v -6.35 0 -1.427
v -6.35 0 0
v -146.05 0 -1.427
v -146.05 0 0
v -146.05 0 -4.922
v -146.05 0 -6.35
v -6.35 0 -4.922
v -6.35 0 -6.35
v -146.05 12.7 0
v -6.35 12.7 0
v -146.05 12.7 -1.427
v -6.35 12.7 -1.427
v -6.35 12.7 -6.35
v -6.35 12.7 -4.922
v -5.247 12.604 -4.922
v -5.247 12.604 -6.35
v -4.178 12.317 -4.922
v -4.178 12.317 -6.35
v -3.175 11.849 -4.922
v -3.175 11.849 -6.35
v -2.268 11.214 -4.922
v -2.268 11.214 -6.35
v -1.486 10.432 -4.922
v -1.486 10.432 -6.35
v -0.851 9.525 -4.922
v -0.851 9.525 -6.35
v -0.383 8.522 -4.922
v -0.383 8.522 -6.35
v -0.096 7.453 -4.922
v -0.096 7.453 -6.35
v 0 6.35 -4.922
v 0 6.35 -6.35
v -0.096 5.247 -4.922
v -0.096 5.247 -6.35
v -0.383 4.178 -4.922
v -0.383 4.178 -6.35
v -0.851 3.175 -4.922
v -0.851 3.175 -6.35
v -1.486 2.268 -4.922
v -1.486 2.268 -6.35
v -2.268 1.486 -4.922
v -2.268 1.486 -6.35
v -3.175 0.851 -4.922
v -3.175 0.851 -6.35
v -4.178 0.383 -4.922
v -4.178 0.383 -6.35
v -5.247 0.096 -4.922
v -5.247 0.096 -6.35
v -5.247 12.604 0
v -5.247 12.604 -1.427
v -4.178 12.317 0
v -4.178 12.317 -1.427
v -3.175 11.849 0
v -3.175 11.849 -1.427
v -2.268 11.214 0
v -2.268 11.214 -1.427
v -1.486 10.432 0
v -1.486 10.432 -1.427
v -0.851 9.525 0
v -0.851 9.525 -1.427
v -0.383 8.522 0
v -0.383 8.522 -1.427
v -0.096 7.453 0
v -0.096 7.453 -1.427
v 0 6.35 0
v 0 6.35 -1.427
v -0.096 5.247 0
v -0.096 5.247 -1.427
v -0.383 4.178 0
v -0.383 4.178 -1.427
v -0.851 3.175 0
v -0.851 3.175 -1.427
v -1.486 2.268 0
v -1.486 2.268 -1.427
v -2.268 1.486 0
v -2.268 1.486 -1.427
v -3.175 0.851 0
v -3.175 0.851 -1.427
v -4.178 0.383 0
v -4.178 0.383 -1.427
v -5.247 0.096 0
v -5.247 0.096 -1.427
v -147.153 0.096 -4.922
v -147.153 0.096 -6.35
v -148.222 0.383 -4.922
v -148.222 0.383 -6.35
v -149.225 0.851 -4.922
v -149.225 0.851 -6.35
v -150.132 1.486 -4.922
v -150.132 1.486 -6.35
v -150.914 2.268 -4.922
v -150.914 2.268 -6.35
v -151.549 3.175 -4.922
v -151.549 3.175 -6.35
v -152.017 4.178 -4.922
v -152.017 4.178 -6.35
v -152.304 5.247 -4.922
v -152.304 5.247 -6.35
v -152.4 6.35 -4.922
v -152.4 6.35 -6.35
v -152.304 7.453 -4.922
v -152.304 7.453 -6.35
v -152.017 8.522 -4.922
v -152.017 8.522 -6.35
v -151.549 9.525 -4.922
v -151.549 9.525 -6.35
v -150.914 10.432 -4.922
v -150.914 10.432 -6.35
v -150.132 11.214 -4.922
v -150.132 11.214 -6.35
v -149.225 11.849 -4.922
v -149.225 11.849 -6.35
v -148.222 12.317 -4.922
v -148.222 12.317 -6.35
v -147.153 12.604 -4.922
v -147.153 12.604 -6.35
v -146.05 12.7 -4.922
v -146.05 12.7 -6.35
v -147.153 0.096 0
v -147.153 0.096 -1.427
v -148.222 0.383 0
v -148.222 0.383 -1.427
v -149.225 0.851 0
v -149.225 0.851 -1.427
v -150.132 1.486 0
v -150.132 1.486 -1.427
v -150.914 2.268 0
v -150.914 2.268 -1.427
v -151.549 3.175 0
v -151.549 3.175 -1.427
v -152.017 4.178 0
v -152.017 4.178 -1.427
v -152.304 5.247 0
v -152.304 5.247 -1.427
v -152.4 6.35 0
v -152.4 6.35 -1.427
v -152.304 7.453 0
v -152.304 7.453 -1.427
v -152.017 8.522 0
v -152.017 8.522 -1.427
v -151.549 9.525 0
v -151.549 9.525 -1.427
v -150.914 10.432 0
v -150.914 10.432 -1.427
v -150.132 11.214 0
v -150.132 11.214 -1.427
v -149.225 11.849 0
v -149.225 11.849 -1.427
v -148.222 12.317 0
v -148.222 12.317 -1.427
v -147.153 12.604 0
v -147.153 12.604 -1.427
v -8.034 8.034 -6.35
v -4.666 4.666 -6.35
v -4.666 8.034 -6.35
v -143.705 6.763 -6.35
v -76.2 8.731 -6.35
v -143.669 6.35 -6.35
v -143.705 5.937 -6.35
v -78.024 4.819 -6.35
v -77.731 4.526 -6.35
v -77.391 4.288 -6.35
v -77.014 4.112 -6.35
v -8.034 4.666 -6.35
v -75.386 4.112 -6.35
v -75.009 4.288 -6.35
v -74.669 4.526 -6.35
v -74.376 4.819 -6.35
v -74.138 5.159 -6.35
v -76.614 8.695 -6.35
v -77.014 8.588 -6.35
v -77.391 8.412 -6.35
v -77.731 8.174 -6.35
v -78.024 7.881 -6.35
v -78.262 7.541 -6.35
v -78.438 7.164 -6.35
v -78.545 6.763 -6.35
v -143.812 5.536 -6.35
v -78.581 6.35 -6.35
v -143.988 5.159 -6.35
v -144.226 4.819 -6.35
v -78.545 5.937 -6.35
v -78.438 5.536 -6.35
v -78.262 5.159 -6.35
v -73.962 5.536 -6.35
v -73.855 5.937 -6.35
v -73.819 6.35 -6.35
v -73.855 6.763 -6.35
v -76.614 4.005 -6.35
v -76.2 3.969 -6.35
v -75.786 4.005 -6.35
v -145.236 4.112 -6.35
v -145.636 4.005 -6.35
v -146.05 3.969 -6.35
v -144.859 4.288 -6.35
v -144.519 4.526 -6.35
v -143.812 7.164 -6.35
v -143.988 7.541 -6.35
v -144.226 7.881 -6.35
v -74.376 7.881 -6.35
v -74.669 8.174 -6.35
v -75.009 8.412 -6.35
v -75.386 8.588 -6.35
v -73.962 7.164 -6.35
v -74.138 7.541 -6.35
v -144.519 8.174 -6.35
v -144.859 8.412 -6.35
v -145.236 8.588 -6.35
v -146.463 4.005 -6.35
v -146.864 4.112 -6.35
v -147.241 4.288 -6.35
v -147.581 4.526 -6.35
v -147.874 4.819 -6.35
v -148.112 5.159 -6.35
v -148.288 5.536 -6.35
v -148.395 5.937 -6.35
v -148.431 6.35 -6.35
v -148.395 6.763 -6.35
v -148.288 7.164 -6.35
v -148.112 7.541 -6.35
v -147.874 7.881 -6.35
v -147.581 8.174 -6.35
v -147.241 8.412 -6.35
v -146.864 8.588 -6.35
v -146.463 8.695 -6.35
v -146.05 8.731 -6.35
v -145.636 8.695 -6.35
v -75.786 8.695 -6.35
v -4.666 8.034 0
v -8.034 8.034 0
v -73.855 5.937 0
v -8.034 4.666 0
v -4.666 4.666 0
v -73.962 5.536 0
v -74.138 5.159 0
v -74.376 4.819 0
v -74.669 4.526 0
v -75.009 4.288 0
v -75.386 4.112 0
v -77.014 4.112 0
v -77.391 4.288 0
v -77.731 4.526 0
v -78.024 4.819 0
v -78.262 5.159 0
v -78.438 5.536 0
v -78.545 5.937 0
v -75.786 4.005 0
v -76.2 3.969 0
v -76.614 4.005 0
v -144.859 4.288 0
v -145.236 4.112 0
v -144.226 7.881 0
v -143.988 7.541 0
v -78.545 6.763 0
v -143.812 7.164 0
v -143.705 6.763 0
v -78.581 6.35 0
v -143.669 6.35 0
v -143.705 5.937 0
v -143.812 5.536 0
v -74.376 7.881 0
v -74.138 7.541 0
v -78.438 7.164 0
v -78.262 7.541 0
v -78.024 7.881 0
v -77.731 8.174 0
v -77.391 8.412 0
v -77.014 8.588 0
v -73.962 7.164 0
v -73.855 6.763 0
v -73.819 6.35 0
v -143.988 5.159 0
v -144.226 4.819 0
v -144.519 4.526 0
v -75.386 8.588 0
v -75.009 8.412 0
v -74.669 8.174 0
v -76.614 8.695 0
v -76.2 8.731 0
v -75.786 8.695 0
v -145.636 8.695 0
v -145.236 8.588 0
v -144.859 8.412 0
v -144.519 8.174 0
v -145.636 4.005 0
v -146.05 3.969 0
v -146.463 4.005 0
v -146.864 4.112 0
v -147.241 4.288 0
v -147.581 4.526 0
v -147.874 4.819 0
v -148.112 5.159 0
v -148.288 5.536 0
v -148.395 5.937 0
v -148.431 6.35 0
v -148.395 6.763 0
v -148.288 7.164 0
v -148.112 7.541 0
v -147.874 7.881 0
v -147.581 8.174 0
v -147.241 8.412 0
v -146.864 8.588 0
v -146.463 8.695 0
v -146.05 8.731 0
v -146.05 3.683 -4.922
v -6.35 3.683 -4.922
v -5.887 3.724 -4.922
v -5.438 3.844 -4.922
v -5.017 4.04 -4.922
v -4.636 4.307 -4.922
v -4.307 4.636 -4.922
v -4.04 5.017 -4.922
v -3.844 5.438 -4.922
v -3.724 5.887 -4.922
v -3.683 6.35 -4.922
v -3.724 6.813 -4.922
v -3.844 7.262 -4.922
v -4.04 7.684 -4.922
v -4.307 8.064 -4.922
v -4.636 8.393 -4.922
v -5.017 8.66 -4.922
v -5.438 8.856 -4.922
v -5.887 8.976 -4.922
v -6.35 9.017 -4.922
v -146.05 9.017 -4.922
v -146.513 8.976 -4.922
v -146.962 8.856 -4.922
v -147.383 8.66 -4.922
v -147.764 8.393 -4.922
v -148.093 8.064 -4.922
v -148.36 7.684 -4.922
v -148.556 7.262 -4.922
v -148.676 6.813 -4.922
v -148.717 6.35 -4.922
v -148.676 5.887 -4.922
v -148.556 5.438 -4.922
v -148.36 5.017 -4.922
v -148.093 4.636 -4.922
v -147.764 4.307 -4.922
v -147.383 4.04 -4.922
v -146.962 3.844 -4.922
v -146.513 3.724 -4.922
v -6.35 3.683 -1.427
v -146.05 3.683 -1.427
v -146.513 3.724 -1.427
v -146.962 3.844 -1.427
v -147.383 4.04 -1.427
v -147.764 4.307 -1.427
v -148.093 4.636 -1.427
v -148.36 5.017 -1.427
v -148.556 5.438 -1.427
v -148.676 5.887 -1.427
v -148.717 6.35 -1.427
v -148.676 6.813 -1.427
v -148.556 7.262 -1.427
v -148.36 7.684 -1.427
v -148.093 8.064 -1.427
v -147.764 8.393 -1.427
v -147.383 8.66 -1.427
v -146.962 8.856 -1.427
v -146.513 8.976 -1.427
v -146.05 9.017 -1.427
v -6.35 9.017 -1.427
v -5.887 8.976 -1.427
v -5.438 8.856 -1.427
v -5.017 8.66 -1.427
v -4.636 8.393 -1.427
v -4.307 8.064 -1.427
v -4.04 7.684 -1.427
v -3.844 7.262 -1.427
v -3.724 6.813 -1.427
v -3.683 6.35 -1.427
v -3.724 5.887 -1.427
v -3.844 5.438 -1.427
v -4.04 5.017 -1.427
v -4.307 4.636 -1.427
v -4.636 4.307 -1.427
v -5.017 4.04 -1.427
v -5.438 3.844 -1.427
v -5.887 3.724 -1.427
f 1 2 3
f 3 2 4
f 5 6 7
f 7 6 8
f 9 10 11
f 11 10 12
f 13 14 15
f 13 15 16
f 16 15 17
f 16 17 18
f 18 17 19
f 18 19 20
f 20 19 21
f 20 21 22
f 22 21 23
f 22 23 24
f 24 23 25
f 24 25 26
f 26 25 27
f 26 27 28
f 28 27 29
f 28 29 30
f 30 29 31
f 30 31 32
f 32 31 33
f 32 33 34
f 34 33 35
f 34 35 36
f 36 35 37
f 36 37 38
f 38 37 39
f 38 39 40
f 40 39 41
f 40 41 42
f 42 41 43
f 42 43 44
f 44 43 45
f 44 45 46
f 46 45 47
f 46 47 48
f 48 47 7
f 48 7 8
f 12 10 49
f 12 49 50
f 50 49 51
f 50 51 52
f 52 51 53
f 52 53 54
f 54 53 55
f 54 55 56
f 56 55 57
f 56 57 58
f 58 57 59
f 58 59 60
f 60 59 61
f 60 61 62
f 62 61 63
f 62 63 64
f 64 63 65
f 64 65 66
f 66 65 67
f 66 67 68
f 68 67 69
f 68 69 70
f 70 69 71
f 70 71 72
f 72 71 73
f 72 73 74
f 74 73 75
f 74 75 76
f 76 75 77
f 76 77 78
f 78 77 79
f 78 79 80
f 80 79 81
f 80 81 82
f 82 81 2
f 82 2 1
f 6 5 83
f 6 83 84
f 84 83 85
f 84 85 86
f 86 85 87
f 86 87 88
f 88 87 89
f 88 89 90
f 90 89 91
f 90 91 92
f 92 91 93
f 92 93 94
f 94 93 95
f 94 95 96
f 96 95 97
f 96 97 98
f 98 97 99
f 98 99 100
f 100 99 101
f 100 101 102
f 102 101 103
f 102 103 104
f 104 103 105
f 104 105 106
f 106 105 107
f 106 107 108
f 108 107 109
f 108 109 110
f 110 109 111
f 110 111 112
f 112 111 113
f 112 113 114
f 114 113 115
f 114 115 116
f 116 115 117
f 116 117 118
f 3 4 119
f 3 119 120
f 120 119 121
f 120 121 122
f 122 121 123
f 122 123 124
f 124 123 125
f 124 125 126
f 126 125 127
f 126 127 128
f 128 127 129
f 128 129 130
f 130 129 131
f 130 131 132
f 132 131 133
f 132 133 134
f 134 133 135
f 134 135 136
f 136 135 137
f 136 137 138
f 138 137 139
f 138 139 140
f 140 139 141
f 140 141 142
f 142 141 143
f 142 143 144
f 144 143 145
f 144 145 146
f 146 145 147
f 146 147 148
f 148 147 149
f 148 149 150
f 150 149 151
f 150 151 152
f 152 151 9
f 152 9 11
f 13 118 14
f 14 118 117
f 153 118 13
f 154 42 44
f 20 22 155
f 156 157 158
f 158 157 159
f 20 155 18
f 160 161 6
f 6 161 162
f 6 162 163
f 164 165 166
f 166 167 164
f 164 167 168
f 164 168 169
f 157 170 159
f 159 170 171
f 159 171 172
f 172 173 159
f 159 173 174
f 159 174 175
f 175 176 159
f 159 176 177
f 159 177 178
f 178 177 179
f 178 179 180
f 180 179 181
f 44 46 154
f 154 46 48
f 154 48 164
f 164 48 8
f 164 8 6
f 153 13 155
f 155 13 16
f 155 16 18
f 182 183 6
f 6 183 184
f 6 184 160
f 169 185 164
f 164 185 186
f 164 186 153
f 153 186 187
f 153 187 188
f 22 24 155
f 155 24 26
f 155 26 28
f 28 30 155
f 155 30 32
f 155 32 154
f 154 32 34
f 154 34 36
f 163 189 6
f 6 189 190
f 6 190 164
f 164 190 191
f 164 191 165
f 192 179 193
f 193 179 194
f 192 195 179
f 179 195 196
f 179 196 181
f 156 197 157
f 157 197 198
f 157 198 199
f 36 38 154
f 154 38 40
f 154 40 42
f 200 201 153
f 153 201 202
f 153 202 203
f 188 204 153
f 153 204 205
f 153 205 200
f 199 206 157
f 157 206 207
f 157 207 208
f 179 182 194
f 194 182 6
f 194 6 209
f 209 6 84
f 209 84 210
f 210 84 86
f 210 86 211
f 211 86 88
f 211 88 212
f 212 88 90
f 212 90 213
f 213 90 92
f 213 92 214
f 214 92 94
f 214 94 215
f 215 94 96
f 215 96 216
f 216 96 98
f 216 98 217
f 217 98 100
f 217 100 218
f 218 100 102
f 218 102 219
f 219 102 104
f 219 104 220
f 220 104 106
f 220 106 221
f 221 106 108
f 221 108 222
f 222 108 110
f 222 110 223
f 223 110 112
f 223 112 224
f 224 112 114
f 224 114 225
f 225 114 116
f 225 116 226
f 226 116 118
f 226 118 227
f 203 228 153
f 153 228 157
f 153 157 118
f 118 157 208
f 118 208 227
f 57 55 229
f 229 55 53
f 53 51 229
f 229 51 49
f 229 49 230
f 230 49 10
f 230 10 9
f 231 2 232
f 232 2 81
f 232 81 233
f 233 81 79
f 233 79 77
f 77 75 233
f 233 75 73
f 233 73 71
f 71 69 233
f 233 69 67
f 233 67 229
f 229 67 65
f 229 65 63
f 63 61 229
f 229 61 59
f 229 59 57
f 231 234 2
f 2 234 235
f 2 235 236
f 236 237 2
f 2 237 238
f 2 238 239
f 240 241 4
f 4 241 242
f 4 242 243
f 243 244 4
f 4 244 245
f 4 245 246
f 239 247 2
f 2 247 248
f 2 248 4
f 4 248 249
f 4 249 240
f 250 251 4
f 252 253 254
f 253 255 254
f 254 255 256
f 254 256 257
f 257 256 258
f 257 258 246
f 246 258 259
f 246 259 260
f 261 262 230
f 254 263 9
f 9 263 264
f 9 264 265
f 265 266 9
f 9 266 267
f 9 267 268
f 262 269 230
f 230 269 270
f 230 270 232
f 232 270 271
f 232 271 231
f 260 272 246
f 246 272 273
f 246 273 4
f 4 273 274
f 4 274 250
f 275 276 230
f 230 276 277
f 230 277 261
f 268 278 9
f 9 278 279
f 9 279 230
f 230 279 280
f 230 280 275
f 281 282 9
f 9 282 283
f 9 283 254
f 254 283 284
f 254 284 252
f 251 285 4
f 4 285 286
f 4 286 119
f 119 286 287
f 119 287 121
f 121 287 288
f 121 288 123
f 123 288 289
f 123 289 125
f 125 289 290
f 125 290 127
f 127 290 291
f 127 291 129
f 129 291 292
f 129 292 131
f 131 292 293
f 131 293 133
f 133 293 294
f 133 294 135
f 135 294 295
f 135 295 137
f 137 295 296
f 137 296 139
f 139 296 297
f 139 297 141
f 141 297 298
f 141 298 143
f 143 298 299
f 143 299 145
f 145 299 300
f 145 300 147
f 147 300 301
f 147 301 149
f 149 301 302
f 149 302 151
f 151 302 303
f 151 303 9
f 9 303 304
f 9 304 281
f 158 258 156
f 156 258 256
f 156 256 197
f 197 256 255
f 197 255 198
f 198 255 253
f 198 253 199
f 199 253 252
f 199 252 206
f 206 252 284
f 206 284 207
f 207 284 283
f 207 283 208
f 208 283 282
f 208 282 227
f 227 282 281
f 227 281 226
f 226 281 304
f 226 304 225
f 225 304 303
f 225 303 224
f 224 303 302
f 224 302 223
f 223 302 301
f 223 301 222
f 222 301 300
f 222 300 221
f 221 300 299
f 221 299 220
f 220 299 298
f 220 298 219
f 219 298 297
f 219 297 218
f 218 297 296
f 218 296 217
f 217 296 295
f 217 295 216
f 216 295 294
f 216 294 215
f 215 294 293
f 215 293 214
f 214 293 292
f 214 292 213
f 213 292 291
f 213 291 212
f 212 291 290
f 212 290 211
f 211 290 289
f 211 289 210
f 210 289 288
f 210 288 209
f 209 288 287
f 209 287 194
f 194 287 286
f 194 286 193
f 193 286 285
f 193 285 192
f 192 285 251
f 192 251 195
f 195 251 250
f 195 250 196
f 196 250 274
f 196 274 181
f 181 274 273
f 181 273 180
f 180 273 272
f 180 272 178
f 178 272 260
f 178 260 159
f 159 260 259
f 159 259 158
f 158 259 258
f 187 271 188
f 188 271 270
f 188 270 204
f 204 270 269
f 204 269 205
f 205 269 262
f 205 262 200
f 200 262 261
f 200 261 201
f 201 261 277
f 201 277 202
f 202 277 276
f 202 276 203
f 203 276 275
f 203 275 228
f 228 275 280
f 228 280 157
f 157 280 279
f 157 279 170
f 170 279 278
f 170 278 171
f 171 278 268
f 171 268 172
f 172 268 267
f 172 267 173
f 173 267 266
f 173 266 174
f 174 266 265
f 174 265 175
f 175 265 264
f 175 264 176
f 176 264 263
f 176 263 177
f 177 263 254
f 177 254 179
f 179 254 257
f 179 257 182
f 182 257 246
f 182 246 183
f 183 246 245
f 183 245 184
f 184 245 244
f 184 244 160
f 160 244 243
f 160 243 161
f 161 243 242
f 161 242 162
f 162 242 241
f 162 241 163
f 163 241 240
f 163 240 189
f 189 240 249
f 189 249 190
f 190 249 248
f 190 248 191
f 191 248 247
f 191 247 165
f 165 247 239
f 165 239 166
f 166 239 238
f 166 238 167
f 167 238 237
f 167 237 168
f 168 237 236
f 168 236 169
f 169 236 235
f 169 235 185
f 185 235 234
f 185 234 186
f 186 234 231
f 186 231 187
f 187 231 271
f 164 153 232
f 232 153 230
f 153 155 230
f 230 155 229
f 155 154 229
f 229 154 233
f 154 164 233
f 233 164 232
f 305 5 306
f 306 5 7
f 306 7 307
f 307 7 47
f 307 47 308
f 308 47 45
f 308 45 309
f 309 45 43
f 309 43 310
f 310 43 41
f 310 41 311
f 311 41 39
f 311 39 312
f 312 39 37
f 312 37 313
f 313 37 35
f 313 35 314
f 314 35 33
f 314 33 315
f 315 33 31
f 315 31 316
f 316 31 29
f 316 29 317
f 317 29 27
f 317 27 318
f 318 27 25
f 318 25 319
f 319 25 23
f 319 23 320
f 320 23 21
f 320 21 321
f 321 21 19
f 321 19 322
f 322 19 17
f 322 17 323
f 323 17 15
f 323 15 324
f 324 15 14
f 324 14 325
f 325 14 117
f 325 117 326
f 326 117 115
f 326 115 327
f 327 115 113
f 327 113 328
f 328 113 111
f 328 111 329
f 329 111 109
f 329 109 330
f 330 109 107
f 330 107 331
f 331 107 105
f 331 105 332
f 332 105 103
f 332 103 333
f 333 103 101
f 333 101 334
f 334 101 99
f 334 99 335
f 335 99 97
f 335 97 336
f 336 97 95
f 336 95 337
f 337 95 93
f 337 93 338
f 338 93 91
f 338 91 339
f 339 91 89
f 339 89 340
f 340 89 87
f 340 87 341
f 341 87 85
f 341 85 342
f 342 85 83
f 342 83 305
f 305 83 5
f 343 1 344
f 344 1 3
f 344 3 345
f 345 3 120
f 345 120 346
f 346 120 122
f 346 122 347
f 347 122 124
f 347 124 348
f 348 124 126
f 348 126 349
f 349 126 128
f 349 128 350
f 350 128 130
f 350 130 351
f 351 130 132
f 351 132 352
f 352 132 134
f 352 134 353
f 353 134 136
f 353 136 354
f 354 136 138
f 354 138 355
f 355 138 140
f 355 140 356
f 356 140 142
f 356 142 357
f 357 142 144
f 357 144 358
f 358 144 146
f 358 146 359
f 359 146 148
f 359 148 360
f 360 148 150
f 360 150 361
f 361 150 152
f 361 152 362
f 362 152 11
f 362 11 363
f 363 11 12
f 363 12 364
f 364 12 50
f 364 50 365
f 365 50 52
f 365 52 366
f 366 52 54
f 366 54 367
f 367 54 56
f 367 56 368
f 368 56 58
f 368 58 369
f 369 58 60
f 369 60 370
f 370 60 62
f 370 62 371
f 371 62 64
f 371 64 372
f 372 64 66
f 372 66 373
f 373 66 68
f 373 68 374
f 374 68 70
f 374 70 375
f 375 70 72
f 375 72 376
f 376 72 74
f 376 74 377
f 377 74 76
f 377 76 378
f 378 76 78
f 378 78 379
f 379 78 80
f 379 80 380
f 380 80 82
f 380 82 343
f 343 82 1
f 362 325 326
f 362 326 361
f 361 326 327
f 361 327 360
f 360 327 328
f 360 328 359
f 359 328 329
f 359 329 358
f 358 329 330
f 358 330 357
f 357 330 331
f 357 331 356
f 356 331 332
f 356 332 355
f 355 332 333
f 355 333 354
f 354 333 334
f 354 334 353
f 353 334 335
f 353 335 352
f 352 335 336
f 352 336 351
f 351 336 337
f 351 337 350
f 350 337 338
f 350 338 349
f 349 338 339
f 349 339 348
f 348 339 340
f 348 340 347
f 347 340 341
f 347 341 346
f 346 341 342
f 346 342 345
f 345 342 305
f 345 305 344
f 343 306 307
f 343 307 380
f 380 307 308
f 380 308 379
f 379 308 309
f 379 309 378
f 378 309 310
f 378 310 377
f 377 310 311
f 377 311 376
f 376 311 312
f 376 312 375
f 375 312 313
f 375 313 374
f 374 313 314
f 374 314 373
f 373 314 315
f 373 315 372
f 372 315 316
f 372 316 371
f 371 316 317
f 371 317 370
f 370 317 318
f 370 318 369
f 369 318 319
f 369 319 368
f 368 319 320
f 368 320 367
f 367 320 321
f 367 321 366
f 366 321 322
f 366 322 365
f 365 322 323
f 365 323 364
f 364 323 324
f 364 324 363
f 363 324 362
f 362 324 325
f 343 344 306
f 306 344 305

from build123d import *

# Parameters (mm, degrees)
ESQUISSE1_W             = 152.4
ESQUISSE1_H             = 12.7
BOSS_EXTRU_1_DEPTH      = 6.35
ESQUISSE2_W             = 3.367596046
ESQUISSE2_H             = 3.367596046
ESQUISSE2_R             = 2.38125
ENL_V_MAT_EXTRU_1_DEPTH = 154.060029074
SKETCH1_W               = 17.85376538
SKETCH1_H               = 3.495000122
CUT_REVOLVE1_ANGLE      = 180
SKETCH2_W               = 3.495000122
SKETCH2_H               = 3.683
CUT_EXTRUDE1_DEPTH      = 154.060029074


with BuildPart() as part:
    # Esquisse1 → Boss.-Extru.1 (new body)
    with BuildSketch(Plane.XY):
        with Locations((-76.2, 6.35)):
            Rectangle(ESQUISSE1_W, ESQUISSE1_H)
    extrude(amount=-BOSS_EXTRU_1_DEPTH)

    # Esquisse2 → Enlèv. mat.-Extru.1 (cut, through all)
    with BuildSketch(Plane.XY):
        with BuildLine():
            Line((0, 12.7), (-6.35, 12.7))
            ThreePointArc((-6.35, 12.7), (-1.859871939, 10.840128061), (0, 6.35))
            Line((0, 6.35), (0, 12.7))
        make_face()
        with BuildLine():
            Line((0, 0), (0, 6.35))
            ThreePointArc((0, 6.35), (-1.859871939, 1.859871939), (-6.35, 0))
            Line((-6.35, 0), (0, 0))
        make_face()
        with BuildLine():
            ThreePointArc((-152.4, 6.35), (-150.540128061, 10.840128061), (-146.05, 12.7))
            Line((-146.05, 12.7), (-152.4, 12.7))
            Line((-152.4, 12.7), (-152.4, 6.35))
        make_face()
        with BuildLine():
            ThreePointArc((-146.05, 0), (-150.540128061, 1.859871939), (-152.4, 6.35))
            Line((-152.4, 6.35), (-152.4, 0))
            Line((-152.4, 0), (-146.05, 0))
        make_face()
        with Locations((-6.35, 6.35)):
            Rectangle(ESQUISSE2_W, ESQUISSE2_H)
        with Locations((-146.05, 6.35)):
            Circle(ESQUISSE2_R)
        with Locations((-76.2, 6.35)):
            Circle(ESQUISSE2_R)
    extrude(amount=-ENL_V_MAT_EXTRU_1_DEPTH, mode=Mode.SUBTRACT)

    # Sketch1 → Cut-Revolve1 (revolve, symmetric, cut)
    with BuildSketch(Plane(origin=(0, 6.35, 0), x_dir=(1, 0, 0), z_dir=(0, 1, 0))) as cut_revolve1_sk:
        with Locations((-157.64388269, 3.175)):
            Rectangle(SKETCH1_W, SKETCH1_H)
    cut_revolve1 = revolve(axis=Axis((-146.05, 6.35, -6.35), (0, 0, 1)), revolution_arc=CUT_REVOLVE1_ANGLE / 2, mode=Mode.SUBTRACT)
    cut_revolve1 = cut_revolve1 + revolve(cut_revolve1_sk.sketch, axis=Axis((-146.05, 6.35, -6.35), (0, 0, -1)), revolution_arc=CUT_REVOLVE1_ANGLE / 2, mode=Mode.SUBTRACT)

    # Mirror1: Cut-Revolve1 across plane
    add(cut_revolve1.mirror(Plane(origin=(-76.2, 0, 0), x_dir=(0, 0, 1), z_dir=(1, 0, 0))), mode=Mode.SUBTRACT)

    # Sketch2 → Cut-Extrude1 (cut, through all)
    with BuildSketch(Plane(origin=(0, 0, 0), x_dir=(0, 0, -1), z_dir=(1, 0, 0))):
        with Locations((3.175, 10.8585)):
            Rectangle(SKETCH2_W, SKETCH2_H)
    cut_extrude1 = extrude(amount=-CUT_EXTRUDE1_DEPTH, mode=Mode.SUBTRACT)

    # Mirror2: Cut-Extrude1 across plane
    add(cut_extrude1.mirror(Plane.ZX.offset(6.35)), mode=Mode.SUBTRACT)


solid = part.part
